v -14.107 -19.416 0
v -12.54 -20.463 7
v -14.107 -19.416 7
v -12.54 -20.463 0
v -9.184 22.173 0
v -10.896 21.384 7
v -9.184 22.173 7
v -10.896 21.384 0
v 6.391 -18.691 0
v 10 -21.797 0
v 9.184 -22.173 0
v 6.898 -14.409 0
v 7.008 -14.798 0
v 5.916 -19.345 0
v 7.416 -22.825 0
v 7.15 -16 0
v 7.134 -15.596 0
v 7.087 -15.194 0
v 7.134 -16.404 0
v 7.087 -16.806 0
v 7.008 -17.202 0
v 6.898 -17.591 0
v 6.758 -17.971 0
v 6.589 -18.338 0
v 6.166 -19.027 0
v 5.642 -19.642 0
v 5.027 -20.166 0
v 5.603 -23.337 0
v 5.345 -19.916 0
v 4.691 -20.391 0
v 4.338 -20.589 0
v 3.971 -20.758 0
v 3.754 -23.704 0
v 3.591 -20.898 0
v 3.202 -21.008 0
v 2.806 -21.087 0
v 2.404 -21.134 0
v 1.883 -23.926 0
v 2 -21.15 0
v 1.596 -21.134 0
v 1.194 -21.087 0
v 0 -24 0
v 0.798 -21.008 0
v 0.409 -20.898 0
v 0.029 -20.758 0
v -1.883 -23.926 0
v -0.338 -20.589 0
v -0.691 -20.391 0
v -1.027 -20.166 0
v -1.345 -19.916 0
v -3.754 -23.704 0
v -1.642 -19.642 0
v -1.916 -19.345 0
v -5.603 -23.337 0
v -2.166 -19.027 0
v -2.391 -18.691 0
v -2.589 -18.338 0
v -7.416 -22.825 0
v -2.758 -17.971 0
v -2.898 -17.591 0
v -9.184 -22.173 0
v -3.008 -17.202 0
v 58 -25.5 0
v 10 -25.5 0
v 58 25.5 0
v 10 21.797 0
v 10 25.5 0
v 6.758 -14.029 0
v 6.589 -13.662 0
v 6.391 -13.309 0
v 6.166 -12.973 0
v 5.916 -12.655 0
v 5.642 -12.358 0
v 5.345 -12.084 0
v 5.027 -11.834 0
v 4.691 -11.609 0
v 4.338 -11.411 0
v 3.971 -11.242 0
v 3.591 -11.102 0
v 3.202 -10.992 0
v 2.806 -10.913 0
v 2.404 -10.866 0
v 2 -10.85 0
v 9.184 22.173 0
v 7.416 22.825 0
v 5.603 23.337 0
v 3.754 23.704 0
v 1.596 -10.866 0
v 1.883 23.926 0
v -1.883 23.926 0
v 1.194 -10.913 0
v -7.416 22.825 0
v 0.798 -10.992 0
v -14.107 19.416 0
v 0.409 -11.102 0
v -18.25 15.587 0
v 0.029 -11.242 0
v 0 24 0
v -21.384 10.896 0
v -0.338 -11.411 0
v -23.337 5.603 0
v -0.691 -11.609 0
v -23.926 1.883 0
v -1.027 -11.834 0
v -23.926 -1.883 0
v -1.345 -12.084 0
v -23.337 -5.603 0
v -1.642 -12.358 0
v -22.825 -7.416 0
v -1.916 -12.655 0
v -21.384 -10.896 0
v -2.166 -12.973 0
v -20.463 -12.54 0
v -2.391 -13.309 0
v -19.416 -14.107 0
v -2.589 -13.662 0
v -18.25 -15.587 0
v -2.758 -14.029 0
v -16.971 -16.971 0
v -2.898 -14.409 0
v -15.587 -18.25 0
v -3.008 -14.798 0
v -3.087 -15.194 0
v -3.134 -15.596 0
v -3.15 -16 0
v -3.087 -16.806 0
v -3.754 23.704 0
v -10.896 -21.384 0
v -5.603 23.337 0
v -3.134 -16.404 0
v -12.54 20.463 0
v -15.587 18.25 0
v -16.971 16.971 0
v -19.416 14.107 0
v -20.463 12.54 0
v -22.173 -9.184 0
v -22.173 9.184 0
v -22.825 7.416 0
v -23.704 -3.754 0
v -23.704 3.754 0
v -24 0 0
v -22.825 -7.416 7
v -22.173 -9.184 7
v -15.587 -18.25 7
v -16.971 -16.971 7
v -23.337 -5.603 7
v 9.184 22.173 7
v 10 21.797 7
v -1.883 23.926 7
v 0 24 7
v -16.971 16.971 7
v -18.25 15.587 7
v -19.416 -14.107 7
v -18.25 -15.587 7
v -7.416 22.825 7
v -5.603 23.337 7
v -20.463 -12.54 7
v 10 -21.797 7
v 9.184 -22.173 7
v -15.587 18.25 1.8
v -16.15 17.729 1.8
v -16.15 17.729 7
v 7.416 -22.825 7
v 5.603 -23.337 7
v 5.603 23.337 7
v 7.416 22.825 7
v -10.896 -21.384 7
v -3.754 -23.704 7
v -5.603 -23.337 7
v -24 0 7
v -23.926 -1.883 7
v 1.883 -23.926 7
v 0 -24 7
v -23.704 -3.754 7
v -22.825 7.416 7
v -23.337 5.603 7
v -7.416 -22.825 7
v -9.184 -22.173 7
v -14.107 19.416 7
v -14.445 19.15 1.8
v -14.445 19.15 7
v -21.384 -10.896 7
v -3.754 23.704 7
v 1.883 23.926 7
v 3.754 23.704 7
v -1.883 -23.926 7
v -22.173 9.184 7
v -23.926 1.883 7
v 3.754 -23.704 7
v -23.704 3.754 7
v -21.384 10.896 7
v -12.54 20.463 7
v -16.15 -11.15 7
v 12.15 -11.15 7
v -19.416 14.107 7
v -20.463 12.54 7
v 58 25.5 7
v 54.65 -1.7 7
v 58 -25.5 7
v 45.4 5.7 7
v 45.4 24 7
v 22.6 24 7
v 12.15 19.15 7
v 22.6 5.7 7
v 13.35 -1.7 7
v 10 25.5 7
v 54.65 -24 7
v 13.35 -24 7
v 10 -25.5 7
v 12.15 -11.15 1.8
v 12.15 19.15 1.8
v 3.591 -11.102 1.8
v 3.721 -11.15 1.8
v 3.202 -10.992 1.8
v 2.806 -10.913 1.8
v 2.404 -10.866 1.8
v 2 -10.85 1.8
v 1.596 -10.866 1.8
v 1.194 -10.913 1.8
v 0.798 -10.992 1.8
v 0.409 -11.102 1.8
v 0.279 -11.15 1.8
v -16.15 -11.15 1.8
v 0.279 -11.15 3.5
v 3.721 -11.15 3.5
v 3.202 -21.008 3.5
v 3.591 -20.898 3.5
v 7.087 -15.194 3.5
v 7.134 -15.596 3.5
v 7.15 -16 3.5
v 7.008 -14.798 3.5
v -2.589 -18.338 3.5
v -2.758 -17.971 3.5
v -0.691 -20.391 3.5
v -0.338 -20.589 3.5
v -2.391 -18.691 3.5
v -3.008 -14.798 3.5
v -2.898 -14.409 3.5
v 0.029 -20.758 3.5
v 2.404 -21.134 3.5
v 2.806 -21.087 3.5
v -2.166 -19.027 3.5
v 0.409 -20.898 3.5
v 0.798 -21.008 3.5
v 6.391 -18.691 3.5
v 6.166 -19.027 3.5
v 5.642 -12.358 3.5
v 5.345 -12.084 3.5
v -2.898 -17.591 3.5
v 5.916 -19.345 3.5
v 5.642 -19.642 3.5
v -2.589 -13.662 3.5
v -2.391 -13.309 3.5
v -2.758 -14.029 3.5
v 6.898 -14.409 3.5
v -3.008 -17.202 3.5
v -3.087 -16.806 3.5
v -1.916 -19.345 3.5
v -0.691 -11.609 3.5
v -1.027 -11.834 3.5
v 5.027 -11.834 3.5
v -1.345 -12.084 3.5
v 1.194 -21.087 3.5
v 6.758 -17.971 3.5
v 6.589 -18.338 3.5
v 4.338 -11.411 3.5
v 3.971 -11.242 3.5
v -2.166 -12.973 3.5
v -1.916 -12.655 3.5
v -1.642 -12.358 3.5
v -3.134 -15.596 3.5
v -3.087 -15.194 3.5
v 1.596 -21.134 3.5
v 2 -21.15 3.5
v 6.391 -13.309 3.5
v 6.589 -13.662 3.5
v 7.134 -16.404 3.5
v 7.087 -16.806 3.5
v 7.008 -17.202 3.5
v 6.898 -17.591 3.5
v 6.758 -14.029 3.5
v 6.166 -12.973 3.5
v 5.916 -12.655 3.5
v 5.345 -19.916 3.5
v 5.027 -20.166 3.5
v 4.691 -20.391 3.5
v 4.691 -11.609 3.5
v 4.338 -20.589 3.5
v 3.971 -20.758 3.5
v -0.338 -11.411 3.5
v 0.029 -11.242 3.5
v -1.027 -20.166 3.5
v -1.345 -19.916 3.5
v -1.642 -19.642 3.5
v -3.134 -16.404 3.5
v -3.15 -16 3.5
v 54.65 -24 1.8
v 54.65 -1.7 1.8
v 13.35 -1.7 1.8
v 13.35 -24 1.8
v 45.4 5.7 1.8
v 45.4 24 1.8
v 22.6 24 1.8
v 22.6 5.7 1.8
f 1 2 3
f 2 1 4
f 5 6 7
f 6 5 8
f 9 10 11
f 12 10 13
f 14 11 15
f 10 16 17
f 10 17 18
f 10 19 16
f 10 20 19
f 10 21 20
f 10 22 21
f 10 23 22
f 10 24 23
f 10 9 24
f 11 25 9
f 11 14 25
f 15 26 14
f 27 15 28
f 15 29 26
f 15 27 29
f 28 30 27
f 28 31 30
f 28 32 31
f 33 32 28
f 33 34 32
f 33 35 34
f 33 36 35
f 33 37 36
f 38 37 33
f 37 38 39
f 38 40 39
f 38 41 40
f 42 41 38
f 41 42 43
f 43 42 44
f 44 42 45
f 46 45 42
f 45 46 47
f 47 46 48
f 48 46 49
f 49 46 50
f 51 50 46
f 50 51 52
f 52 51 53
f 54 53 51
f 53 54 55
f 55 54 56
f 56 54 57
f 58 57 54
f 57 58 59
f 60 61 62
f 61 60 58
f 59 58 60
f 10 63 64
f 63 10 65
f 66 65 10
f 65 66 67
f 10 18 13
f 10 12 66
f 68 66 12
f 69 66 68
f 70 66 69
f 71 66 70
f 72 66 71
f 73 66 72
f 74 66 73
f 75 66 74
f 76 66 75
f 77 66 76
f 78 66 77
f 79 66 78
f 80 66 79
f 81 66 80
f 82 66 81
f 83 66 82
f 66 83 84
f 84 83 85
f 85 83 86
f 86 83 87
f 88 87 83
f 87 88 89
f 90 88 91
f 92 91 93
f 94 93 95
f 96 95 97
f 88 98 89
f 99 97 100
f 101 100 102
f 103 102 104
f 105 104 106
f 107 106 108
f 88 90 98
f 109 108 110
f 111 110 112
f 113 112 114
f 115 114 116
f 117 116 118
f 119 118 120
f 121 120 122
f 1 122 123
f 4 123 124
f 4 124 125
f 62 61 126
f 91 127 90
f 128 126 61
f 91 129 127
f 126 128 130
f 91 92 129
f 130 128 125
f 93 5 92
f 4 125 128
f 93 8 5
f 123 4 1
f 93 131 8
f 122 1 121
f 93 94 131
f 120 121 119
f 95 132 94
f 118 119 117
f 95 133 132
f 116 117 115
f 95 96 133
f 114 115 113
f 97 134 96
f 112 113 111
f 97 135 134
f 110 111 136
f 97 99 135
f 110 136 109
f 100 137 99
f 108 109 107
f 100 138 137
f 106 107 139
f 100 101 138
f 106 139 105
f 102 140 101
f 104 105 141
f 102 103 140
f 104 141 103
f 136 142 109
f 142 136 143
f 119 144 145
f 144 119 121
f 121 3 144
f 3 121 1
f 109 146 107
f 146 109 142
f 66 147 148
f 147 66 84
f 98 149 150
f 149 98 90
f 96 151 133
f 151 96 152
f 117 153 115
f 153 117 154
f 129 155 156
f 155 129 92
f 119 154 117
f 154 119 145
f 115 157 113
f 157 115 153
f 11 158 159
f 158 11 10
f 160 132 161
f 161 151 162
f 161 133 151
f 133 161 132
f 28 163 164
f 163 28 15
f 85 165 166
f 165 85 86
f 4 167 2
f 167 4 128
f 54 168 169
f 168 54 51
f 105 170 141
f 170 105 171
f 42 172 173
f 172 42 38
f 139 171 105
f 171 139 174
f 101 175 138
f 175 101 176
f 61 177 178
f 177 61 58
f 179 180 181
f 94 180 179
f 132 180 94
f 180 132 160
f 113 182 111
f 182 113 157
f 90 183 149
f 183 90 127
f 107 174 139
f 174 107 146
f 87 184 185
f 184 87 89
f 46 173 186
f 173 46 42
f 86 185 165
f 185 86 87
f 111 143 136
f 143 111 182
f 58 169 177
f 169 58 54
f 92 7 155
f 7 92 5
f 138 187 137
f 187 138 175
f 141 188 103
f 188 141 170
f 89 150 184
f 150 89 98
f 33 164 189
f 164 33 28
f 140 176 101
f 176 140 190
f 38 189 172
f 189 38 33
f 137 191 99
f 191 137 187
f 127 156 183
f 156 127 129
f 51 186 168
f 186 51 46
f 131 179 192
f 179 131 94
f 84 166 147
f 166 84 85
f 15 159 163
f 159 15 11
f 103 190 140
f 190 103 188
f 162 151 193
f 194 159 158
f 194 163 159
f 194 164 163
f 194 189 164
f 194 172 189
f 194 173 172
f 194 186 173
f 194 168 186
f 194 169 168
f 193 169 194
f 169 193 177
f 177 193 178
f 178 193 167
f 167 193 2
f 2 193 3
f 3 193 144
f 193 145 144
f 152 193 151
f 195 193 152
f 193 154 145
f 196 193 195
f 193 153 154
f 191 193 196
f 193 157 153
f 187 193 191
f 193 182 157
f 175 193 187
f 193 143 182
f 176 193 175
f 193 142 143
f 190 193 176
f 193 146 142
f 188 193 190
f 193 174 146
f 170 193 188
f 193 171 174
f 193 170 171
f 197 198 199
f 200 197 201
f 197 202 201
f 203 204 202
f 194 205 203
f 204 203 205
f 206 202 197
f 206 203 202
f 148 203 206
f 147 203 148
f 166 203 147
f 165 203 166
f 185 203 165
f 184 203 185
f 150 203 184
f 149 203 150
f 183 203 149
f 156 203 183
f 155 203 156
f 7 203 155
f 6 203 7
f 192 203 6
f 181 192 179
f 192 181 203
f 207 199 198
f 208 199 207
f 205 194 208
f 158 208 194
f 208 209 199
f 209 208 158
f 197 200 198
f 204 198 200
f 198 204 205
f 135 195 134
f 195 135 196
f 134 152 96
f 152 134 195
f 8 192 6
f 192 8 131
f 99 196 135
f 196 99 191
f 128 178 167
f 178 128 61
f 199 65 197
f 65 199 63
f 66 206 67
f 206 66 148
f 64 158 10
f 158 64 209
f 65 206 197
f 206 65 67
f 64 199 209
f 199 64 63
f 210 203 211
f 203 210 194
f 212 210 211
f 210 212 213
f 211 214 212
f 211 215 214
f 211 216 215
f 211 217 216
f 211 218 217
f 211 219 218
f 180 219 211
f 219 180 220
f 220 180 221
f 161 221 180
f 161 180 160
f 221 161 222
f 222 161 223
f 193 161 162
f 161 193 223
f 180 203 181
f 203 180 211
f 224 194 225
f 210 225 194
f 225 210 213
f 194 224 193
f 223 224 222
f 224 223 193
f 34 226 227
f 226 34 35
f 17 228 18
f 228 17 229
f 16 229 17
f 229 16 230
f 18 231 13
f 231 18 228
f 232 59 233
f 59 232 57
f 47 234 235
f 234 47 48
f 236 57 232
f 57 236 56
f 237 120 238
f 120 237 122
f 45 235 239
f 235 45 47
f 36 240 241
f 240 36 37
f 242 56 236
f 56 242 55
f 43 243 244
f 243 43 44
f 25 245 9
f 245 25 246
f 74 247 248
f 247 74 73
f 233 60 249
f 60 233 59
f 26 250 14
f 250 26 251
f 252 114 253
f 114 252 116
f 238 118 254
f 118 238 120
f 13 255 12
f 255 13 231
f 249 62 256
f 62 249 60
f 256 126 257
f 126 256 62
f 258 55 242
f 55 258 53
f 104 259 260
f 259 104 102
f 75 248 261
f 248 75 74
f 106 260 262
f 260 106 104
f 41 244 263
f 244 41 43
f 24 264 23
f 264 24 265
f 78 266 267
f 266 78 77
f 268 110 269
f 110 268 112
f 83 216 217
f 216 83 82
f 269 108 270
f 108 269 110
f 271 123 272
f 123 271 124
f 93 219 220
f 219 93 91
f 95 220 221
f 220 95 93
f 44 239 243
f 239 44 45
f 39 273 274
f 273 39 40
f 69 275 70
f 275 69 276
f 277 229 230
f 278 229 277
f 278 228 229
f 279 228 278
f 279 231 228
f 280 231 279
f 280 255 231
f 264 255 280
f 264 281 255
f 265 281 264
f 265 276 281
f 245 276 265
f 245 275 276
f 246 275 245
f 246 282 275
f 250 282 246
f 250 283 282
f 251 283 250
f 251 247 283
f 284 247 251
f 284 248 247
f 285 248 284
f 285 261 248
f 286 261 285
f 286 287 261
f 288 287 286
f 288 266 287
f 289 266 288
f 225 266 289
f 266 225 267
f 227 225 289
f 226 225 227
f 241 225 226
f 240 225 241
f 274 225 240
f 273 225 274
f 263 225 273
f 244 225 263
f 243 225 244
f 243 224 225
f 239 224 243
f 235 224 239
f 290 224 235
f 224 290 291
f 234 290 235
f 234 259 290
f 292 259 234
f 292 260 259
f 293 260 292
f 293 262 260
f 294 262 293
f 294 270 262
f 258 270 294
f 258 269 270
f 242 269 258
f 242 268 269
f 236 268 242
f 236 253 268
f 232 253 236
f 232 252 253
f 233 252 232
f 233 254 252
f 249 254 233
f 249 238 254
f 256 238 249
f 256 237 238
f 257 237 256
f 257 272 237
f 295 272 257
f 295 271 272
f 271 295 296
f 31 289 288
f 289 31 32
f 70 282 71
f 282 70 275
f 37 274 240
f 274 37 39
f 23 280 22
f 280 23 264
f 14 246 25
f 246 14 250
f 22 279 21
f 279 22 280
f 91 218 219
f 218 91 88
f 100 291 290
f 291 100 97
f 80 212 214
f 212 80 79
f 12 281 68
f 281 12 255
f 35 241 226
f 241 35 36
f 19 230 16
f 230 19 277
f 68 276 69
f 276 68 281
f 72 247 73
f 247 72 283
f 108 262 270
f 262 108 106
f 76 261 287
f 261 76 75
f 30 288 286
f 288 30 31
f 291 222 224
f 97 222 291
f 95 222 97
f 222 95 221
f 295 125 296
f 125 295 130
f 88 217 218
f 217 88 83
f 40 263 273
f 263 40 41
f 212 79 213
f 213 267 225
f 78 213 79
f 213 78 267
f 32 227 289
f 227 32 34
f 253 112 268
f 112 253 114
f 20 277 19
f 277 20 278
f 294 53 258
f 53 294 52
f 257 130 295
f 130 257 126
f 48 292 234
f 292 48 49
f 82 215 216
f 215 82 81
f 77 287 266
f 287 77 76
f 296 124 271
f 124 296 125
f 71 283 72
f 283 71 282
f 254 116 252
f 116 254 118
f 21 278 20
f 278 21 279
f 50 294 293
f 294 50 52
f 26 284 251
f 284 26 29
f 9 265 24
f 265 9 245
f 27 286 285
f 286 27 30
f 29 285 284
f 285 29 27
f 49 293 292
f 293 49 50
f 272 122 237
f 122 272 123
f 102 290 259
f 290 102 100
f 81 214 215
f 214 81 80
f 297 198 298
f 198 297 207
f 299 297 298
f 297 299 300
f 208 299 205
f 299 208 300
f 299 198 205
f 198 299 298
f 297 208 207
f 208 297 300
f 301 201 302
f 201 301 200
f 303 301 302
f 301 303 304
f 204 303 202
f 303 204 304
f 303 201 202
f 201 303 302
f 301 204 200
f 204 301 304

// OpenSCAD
use <wrist_puck_keyhole_1_0.scad>

// Shallow test tray -- calls the EXACT SAME cavity modules as the
// real bottom_shell(), just with a shallow cut_top_z instead of the
// full shell height. use<> imports modules (fine) but not variables
// (not needed here -- no positioning numbers are duplicated at all,
// unlike the previous version of this file).
//
// Previous versions of this file used include<>, which executes the
// included file's own top-level bottom_shell() call as well as this
// file's content -- silently unioning the FULL 26.5mm shell with this
// shallow tray. That's what Bambu Studio's 1h46m/27g slicing estimate
// was actually showing: the full shell, not a quick test print. This
// version cannot make that mistake structurally, not just by
// convention -- use<> never executes the included file's top-level
// statements at all.
// TEST_H is a plain absolute number, NOT "FLOOR_T + 5" -- use<>
// doesn't import variables (only modules), so FLOOR_T would be
// undef here, and undef arithmetic silently produced a near-zero
// height rather than an error. Real floor thickness is 2mm
// (defined inside wrist_puck_keyhole_1_0.scad); keep TEST_H a
// few mm above that if you change it.
TEST_H = 7;

module floorplan() {
    difference() {
        outer_silhouette(TEST_H);
        servo_cavity(TEST_H + 1);
        lra_cavity();
        power_cavity(TEST_H + 1);
        compute_cavity(TEST_H + 1);
    }
}

floorplan();
